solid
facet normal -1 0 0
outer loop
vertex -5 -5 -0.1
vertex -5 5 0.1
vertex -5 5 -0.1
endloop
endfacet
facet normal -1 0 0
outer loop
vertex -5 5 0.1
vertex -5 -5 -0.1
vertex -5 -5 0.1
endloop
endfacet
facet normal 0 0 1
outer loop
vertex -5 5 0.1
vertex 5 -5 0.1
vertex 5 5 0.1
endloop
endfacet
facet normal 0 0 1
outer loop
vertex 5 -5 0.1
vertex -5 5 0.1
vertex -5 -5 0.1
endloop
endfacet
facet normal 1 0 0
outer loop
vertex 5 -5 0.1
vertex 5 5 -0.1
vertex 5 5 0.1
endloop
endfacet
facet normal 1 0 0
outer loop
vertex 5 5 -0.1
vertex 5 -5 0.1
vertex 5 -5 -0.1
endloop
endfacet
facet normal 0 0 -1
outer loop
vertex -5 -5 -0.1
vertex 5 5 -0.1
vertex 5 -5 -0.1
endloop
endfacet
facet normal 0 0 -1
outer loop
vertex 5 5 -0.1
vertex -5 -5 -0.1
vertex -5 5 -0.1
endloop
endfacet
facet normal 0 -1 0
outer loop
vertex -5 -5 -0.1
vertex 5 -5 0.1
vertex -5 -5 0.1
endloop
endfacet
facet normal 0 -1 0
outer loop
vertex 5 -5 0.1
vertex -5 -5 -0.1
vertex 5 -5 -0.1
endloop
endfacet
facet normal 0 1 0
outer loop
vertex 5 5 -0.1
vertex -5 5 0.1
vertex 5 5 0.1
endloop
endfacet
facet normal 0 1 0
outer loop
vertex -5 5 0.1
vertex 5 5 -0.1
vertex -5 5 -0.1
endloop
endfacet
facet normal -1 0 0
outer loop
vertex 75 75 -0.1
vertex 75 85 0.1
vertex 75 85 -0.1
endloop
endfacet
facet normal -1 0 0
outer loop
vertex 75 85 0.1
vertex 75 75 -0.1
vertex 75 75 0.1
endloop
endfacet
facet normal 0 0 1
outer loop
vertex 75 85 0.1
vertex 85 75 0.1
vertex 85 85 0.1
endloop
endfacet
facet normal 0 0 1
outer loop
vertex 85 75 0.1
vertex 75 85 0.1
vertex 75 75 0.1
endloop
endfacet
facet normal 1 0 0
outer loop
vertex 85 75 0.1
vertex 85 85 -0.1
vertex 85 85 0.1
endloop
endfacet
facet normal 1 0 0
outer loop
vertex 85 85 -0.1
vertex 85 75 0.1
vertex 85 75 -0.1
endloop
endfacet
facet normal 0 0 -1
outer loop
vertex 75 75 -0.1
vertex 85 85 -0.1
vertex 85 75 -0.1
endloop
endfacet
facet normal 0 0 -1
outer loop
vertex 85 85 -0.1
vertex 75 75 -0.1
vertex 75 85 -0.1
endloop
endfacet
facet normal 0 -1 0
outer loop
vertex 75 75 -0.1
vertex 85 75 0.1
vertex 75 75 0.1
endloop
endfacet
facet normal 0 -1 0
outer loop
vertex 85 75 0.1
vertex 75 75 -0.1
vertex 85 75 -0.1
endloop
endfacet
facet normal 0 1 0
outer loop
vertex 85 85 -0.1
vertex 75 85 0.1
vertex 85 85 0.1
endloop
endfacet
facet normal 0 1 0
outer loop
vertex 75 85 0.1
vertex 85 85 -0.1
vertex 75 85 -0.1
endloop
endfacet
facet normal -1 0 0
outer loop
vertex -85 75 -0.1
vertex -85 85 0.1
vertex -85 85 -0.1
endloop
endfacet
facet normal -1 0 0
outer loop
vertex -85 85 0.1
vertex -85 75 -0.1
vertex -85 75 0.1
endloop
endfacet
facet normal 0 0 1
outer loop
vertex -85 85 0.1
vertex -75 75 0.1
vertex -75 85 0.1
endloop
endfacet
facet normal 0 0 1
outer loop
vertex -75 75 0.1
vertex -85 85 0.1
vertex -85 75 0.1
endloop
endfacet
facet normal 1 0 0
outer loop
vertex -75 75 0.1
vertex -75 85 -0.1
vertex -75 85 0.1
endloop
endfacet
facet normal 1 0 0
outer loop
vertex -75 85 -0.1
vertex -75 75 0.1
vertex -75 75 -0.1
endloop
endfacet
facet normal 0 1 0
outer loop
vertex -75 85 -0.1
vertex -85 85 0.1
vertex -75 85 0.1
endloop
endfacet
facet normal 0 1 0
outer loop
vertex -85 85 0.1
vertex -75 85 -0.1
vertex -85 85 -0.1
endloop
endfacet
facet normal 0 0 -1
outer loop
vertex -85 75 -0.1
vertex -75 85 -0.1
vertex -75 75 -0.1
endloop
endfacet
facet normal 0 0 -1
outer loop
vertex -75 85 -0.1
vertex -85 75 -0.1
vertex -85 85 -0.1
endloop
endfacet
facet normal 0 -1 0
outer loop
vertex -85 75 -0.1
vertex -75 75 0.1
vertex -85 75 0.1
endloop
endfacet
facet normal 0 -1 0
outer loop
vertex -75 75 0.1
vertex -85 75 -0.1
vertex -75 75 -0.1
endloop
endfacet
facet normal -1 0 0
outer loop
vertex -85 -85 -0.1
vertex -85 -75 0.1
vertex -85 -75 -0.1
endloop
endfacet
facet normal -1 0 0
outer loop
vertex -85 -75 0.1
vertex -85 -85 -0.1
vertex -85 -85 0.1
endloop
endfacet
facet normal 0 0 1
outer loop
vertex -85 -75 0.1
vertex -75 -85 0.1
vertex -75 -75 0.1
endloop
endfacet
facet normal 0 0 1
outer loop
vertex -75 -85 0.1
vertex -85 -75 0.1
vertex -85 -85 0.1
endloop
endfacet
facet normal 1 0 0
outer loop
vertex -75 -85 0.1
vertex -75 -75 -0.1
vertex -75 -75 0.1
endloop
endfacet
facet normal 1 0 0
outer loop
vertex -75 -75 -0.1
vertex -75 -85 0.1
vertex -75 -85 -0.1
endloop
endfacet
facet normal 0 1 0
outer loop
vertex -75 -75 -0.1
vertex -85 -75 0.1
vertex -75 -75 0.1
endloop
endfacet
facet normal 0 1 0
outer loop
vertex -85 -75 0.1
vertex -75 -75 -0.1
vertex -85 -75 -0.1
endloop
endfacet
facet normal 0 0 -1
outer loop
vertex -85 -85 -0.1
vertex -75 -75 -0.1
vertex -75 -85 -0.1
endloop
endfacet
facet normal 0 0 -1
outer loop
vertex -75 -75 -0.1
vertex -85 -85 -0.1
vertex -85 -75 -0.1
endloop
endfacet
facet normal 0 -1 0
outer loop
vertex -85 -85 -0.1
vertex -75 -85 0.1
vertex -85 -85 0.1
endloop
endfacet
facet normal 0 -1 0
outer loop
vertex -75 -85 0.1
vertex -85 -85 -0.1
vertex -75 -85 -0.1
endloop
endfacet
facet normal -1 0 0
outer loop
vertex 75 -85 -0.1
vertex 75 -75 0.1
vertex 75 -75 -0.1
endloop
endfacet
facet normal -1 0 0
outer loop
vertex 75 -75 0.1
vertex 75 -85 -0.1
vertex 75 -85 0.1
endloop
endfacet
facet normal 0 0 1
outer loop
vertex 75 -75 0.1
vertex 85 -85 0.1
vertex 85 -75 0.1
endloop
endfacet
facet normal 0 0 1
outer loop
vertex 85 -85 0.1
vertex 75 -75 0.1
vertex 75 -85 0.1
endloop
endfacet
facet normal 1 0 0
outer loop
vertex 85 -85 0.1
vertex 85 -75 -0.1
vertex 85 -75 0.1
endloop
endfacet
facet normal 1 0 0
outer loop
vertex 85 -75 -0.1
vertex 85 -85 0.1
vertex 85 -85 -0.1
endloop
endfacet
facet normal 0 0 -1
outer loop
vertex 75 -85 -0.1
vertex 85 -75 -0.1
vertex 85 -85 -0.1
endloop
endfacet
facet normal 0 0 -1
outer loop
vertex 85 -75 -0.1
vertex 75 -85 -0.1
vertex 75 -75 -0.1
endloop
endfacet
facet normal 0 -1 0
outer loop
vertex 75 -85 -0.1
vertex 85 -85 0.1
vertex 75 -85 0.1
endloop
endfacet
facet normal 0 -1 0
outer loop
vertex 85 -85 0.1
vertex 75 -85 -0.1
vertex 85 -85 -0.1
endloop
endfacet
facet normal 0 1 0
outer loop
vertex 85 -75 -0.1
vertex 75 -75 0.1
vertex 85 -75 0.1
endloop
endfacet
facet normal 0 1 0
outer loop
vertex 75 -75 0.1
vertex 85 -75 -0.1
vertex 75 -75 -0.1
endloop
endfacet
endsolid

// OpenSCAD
cube([10,10,0.2], center=true);
translate([80,80]) cube([10,10,0.2], center=true);
translate([-80,80]) cube([10,10,0.2], center=true);
translate([-80,-80]) cube([10,10,0.2], center=true);
translate([80,-80]) cube([10,10,0.2], center=true);
